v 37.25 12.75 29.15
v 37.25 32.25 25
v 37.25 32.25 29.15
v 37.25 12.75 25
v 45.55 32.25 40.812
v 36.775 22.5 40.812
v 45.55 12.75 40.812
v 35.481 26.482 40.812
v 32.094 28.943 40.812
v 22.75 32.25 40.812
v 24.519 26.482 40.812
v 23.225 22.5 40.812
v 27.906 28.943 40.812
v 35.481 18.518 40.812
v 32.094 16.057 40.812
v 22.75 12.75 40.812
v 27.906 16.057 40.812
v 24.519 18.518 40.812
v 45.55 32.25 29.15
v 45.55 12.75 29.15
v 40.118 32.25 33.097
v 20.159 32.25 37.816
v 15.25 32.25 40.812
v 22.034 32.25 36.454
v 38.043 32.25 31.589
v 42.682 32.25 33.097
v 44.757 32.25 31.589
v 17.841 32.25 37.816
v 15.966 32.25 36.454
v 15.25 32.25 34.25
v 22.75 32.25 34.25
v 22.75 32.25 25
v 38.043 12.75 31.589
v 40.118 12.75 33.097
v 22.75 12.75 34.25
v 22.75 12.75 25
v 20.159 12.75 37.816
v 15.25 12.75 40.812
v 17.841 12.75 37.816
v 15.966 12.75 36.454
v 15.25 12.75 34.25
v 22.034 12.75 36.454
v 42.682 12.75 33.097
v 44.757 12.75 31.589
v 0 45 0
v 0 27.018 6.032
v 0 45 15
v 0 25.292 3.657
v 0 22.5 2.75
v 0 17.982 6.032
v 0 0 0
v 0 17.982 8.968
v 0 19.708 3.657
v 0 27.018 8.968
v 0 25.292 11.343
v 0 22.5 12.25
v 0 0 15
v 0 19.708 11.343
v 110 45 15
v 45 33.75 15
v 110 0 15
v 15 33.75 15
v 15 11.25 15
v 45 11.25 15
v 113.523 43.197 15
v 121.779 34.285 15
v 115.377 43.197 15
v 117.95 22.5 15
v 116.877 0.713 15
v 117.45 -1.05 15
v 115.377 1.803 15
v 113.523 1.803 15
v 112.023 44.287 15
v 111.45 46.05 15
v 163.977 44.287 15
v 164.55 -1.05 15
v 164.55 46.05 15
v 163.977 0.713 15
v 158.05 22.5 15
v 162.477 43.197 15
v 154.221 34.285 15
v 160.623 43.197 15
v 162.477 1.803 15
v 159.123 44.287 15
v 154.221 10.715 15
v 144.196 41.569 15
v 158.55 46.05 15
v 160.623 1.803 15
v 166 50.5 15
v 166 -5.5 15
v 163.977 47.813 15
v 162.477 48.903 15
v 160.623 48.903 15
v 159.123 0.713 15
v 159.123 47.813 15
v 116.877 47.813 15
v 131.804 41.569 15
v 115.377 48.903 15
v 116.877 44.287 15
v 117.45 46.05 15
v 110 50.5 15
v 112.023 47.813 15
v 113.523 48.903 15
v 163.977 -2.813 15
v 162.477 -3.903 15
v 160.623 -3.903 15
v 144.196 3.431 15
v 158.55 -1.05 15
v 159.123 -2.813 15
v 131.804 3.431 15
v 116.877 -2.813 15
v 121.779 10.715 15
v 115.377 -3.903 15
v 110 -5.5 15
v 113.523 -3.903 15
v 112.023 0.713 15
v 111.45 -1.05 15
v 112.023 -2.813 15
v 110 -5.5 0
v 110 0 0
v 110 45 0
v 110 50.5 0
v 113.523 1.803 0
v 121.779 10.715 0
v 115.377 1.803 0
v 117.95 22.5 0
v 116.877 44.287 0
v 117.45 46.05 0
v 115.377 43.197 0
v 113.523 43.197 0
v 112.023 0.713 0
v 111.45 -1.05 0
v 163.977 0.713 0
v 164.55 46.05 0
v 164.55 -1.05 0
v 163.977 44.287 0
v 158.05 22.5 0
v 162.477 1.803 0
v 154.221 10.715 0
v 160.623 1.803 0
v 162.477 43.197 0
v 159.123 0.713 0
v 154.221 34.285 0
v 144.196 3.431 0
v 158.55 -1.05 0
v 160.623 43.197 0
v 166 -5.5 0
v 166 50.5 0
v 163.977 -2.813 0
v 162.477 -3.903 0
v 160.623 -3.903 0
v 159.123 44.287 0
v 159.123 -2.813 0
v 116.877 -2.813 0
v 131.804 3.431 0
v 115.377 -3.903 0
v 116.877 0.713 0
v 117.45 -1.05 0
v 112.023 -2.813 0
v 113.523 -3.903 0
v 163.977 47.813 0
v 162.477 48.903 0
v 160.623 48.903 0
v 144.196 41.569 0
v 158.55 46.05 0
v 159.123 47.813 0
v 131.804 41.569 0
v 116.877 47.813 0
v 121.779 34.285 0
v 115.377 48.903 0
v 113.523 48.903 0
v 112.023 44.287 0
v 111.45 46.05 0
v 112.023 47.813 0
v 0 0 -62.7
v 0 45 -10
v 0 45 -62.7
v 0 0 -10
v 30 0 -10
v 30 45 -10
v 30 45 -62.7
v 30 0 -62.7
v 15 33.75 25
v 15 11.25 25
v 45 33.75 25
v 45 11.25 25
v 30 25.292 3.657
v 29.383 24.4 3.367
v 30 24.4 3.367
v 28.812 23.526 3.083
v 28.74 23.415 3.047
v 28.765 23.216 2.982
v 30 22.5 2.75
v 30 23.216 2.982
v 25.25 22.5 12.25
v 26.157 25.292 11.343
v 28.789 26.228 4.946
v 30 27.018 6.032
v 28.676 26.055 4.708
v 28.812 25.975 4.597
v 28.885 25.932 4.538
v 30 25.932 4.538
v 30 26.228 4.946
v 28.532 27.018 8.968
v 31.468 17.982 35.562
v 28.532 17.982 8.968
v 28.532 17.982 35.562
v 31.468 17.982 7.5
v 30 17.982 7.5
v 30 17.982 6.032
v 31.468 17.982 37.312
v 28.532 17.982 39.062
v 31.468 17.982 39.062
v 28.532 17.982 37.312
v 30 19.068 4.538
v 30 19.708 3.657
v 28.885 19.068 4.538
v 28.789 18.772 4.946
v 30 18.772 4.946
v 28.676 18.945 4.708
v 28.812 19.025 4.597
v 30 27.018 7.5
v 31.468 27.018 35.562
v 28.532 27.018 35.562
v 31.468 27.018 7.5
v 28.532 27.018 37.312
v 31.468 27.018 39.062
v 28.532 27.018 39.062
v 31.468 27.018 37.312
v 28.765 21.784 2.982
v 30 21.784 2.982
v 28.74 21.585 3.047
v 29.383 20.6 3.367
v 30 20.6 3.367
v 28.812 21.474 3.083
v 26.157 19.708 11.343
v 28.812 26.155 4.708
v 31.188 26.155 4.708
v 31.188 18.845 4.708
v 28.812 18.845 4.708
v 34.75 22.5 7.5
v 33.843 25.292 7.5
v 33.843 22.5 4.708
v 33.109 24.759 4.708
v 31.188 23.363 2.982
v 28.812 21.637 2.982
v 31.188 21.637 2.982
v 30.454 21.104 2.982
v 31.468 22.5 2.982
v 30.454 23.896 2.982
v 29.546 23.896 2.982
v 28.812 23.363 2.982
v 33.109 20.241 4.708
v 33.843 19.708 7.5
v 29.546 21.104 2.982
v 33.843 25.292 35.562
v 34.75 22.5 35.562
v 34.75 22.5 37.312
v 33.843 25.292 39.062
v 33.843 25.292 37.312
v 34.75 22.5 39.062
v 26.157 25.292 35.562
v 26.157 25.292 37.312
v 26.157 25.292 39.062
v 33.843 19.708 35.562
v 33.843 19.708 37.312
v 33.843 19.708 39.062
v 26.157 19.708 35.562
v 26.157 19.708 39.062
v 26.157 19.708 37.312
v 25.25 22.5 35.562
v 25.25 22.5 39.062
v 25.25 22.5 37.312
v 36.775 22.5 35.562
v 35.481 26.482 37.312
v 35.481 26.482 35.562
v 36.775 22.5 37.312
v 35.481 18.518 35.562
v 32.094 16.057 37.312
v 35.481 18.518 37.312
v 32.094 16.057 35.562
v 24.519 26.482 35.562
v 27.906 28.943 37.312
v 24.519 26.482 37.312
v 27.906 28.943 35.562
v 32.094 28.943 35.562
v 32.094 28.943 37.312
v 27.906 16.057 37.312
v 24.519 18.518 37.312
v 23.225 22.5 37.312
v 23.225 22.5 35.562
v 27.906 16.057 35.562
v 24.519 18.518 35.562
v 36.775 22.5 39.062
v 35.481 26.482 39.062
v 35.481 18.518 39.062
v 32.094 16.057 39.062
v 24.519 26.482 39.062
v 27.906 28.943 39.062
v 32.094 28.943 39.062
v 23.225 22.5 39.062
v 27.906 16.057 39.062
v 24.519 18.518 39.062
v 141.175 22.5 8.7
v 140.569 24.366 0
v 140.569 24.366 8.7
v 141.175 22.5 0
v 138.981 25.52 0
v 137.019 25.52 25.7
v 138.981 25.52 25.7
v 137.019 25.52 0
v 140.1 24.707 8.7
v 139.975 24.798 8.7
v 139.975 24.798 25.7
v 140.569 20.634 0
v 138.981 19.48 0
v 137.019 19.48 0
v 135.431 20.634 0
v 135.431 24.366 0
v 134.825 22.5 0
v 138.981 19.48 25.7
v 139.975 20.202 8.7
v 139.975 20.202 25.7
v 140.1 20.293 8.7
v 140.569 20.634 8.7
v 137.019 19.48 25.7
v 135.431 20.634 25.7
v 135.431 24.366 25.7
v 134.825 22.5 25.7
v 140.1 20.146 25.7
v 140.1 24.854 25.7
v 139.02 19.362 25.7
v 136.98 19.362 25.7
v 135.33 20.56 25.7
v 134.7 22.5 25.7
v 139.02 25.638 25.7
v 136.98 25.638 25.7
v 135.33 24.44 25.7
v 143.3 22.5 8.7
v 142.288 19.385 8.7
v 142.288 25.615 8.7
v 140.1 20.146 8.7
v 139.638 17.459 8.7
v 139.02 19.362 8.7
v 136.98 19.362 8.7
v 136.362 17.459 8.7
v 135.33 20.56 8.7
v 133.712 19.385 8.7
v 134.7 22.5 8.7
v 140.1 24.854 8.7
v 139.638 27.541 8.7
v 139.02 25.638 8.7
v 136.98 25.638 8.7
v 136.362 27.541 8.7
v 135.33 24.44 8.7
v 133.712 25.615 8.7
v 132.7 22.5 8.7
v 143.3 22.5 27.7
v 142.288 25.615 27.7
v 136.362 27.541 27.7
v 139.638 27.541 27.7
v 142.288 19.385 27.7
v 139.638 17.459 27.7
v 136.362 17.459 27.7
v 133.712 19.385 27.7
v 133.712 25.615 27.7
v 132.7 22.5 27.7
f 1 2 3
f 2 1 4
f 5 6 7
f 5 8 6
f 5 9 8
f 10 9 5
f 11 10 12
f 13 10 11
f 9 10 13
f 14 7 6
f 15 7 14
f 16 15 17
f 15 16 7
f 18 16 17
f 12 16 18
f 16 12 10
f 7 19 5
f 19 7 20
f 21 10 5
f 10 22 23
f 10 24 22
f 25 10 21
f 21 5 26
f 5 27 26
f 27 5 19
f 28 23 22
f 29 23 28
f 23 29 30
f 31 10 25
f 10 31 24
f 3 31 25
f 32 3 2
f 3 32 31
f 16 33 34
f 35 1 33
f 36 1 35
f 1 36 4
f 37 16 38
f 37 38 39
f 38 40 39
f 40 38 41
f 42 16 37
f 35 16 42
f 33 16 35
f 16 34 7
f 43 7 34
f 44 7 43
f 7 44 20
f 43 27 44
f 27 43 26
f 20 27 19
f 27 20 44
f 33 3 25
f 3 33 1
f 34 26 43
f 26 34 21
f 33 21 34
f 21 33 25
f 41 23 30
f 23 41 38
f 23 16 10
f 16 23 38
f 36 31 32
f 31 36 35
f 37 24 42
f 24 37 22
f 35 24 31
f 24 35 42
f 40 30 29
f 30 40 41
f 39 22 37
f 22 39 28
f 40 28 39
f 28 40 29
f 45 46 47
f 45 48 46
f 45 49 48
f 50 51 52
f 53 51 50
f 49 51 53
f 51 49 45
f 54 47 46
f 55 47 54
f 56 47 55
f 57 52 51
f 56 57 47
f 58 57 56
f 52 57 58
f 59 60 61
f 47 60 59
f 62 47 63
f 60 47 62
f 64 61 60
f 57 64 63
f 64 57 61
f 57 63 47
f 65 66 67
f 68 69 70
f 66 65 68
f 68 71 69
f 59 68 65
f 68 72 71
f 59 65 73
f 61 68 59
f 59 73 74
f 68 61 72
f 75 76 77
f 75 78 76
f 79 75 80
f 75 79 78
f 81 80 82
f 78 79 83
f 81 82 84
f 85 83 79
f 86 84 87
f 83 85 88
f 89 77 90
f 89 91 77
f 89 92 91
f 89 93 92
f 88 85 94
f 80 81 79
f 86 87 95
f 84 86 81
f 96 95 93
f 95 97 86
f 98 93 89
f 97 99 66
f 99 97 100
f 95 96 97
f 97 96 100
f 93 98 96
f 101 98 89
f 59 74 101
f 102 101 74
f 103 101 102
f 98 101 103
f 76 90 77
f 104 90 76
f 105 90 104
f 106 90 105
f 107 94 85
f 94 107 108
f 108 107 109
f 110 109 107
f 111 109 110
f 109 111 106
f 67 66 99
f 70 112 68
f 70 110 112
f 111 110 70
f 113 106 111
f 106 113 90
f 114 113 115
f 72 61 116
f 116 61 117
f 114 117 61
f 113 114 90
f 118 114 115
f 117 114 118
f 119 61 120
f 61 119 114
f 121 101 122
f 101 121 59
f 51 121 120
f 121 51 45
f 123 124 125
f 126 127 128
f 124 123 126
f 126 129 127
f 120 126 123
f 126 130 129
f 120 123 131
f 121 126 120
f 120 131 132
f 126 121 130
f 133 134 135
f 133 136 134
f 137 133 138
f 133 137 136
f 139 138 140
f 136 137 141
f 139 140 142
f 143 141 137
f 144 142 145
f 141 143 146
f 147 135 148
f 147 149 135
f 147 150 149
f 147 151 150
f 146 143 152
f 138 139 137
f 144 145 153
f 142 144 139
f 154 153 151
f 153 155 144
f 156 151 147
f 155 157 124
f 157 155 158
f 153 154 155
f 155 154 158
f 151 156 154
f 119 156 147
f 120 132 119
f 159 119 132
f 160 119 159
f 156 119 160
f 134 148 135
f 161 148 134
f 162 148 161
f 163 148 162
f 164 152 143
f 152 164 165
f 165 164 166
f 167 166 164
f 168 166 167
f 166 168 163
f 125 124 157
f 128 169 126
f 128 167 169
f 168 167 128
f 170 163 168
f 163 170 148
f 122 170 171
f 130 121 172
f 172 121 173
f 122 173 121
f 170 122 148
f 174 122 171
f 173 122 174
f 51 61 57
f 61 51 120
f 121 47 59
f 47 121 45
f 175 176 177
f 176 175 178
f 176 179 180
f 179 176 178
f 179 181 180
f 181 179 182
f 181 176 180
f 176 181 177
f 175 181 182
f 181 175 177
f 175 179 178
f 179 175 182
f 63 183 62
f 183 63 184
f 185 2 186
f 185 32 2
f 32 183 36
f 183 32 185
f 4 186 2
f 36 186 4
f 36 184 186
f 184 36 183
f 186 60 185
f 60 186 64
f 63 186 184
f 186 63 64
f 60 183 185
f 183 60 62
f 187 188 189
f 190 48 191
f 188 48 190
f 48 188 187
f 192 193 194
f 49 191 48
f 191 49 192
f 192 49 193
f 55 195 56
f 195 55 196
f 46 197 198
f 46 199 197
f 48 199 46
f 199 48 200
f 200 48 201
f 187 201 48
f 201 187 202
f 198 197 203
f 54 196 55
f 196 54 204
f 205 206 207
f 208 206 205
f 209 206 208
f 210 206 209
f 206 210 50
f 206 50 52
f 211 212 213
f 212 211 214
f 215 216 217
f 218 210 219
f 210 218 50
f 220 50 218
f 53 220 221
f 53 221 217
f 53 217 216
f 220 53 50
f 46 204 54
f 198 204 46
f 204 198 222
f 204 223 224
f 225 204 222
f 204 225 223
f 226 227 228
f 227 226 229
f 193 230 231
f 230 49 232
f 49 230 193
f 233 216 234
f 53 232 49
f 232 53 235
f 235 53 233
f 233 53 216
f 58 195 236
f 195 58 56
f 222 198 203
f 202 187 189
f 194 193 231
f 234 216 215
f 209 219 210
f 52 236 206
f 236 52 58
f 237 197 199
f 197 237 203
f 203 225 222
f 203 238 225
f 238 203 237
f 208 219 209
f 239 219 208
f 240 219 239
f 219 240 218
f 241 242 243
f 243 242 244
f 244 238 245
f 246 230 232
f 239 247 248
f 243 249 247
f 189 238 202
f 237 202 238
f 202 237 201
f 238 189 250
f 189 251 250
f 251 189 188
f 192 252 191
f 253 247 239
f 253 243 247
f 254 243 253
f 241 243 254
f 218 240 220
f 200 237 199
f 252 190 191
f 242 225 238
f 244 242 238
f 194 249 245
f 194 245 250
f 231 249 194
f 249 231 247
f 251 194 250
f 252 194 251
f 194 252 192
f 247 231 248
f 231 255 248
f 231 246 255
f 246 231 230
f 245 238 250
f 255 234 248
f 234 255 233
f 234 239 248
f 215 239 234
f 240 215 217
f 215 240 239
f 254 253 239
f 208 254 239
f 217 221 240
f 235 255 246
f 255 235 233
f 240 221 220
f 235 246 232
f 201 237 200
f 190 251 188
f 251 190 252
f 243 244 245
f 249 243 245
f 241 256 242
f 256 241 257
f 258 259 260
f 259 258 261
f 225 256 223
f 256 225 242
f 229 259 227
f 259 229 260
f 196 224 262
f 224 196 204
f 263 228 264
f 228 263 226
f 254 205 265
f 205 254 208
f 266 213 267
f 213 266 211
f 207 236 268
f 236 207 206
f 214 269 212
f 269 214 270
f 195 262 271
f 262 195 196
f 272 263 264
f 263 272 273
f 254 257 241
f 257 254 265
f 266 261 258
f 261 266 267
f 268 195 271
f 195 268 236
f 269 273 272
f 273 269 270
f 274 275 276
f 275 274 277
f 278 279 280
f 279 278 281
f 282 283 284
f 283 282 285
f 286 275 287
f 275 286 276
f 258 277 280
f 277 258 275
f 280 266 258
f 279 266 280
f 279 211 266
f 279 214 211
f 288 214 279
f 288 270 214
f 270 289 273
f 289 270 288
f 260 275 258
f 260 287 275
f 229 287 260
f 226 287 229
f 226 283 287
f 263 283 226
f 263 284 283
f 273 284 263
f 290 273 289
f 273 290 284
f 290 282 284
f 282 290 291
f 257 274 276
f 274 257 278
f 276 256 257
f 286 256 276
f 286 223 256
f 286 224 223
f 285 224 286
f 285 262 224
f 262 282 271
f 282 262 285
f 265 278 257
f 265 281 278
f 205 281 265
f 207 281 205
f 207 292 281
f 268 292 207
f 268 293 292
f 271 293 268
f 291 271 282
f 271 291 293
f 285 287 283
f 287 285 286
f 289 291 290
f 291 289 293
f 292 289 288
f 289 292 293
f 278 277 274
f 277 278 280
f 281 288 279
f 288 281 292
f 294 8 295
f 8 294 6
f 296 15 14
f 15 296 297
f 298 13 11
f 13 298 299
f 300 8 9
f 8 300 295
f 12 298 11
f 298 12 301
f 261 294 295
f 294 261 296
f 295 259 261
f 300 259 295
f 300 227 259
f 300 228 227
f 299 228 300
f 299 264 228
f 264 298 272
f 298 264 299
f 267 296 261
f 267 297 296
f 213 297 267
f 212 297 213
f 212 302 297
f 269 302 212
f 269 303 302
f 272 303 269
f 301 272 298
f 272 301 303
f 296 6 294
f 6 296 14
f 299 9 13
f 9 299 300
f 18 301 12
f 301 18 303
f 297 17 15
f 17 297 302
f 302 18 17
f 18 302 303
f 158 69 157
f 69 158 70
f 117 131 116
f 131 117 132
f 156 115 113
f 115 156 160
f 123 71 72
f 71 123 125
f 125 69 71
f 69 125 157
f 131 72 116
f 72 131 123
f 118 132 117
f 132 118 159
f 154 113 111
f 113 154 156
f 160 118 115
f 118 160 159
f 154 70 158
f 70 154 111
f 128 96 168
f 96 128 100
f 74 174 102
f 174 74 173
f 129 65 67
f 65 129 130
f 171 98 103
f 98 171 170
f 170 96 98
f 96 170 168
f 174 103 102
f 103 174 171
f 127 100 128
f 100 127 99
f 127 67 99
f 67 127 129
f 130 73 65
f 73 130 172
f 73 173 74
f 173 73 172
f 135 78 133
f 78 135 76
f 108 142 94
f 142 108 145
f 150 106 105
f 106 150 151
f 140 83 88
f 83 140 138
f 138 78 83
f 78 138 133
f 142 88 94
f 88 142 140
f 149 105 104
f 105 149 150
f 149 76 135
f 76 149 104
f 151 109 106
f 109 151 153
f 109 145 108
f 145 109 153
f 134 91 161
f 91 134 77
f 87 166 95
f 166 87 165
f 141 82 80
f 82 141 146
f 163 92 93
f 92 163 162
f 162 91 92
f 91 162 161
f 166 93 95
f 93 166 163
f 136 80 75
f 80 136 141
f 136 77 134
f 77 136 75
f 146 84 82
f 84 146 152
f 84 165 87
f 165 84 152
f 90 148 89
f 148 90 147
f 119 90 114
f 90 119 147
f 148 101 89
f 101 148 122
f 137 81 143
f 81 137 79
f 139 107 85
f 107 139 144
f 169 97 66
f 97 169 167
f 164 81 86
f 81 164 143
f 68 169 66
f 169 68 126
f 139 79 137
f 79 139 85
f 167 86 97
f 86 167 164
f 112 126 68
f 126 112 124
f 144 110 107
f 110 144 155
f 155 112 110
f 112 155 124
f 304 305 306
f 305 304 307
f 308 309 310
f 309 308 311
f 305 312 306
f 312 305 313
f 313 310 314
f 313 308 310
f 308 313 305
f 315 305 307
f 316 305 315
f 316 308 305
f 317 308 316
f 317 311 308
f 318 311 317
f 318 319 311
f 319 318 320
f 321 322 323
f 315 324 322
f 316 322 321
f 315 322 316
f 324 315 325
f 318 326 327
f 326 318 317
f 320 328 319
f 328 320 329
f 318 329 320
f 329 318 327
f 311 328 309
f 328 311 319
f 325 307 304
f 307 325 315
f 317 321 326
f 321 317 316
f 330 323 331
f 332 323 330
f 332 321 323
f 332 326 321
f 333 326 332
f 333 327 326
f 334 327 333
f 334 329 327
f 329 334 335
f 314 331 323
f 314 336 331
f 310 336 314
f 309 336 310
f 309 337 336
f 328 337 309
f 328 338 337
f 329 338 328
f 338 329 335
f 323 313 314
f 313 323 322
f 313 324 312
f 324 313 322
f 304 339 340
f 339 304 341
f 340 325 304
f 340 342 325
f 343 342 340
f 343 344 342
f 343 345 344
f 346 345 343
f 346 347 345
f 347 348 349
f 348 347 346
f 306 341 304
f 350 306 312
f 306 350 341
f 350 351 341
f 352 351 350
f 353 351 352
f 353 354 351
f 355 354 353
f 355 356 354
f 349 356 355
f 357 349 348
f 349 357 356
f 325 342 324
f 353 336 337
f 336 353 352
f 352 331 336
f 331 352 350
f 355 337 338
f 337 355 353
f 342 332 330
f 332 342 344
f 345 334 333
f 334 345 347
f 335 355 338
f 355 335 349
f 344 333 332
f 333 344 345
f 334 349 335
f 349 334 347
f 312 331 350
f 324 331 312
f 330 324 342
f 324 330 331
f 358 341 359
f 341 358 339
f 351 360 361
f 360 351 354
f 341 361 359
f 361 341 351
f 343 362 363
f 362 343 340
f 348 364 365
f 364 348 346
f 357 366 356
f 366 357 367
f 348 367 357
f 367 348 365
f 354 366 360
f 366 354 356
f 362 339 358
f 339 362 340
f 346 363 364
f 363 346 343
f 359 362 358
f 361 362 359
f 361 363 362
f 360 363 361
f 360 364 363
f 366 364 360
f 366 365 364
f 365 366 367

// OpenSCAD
// ----- Declaração de Variáveis ----- //
res=10;
folga1=0.125;

basex=110;
menosAux=80;
base2x=110-menosAux;
basey=2*22.5;
basez=15;

hastex=30;
hastey=22.5;
hastez=10;

rfurao=8.3/2;
rfurim=7.5/2;
sobefurim=13-rfurim-rfurao;

entreFuros=13;

hastefuraox=2*rfurao;
hastefuraoy=19.5;
hastefuraoz=1.25*rfurao;

hastefurimx=2*rfurim;
hastefurimy=19.5;
hastefurimz=1.75*rfurim;

haste2x=14.5;
haste2y=19.5;
haste2z=rfurao+sobefurim+hastefurimz;

rFuro=9.5/2;
alt1=basex-menosAux;
alt2=haste2z+basez+hastez-basez/2;

rfuroElast=13.55/2;
altElast=1.75;

motorx=56;
motory=56;
motorz=52.7;
rmotor=38.1/2+1;
rMenorMotor=6/2;
eCil=(52.1+42.1)/2;
eCilMotorxy=(56-52.1)/2;
rMenorMotorReal=5/2;

rPino=6.35/2;
altPino=24+54.4-52.7;
menosRpino=6.35-5.15;
altRpino=17;
morePino=2;
maisAltPino=2;

// ----- Main ----- //

difference(){
    translate([0,0,0]){
        // Base
        cube([basex,basey,basez]);
        
        translate([0,0,-10-motorz])cube([base2x,basey,motorz]);

        // Hastes
        translate([basex-menosAux-hastex/2,basey/2-hastey/2,basez])
        cube([hastex,hastey,hastez]);

        translate([basex-menosAux-haste2x/2,basey/2-haste2y/2,basez+hastez])
        cube([haste2x,haste2y,haste2z]);

        difference(){
            translate([basex-menosAux+haste2x/2,basey/2-haste2y/2,basez+hastez+rfurao])
            cube([hastefuraox,hastefuraoy,haste2z-rfurao]);
            #translate([rfurao+basex-menosAux+haste2x/2,basey/2-haste2y/2,basez+hastez+rfurao])
            #rotate([-90,0,0]) #cylinder(hastefuraoy,rfurao,rfurao,$fn=res);
        }
        translate([0,0,sobefurim]){
            difference(){
                translate([basex-menosAux-haste2x/2-hastefurimx,basey/2-haste2y/2,basez+hastez+rfurao])
                cube([hastefurimx,hastefurimy,hastefurimz]);
                #translate([-rfurim+basex-menosAux-haste2x/2,basey/2-haste2y/2,basez+hastez+rfurao])
                #rotate([-90,0,0]) #cylinder(hastefurimy,rfurim,rfurim,$fn=res);
            }
        }
    }
    #translate([0,basey/2,basez/2]){
        // Furo Encaminha Fio
        #rotate([0,90,0])
        #cylinder(alt1,rFuro,rFuro,$fn=res);
        #translate([alt1,0,0])
        #sphere(rFuro,$fn=res);
        #translate([alt1,0,0])
        #cylinder(alt2,rFuro,rFuro,$fn=res);
        #translate([alt1,0,0])
        #cylinder(alt2,rFuro,rFuro,$fn=res);
    }
    #translate([0,basey/2,basez/2]){
        // Furo Encaminha Fio
        #rotate([0,90,0])
        #cylinder(alt1,rFuro,rFuro,$fn=res);
        #translate([alt1,0,0])
        #sphere(rFuro,$fn=res);
        #translate([alt1,0,0])
        #cylinder(alt2,rFuro,rFuro,$fn=res);
        #translate([alt1,0,0])
        #cylinder(alt2,rFuro,rFuro,$fn=res);
    }
    translate([0,0,-3*altElast]){
        #translate([alt1,0,alt2])
        #translate([0,basey/2,basez/2])
        #cylinder(altElast,rfuroElast,rfuroElast,$fn=res);
        #translate([alt1,0,alt2+2*altElast])
        #translate([0,basey/2,basez/2])
        #cylinder(altElast,rfuroElast,rfuroElast,$fn=res);
    }
}

// Suporte ao Motor de Passo
difference(){
    translate([basex,-(motory-basey)/2,0])cube([motorx,motory,basez]);
    #translate([basex+eCilMotorxy+rMenorMotorReal,-(motory-basey)/2+eCilMotorxy+rMenorMotorReal,0]){
        #translate([0,0,0])cylinder(basez,rMenorMotor,rMenorMotor,$fn=res);
        #translate([0,eCil,0])cylinder(basez,rMenorMotor,rMenorMotor,$fn=res);
        #translate([eCil,0,0])cylinder(basez,rMenorMotor,rMenorMotor,$fn=res);
        #translate([eCil,eCil,0])cylinder(basez,rMenorMotor,rMenorMotor,$fn=res);
    }
    #translate([basex,-(motory-basey)/2,0])translate([motorx/2,motory/2,0])cylinder(basez,rmotor,rmotor,$fn=res);
}

// Pino do Motor de Passo (Apague quando for imprimir)
difference(){
    translate([basex,-(motory-basey)/2,0])
    translate([motorx/2,motory/2,0])
    cylinder(altPino,rPino,rPino,$fn=res);

    #translate([basex-menosRpino,-(motory-basey)/2,0])
    #translate([motorx/2+rPino,motory/2-rPino,altPino-altRpino])
    #cube([2*rPino,2*rPino,altRpino]);
}

// Encaixe Pino do Motor de Passo
difference(){
    translate([basex,-(motory-basey)/2,altPino-altRpino])
    translate([motorx/2,motory/2,0])
    cylinder(altRpino+maisAltPino,rPino+folga1+morePino,rPino+folga1+morePino,$fn=res);
    difference(){
        translate([basex,-(motory-basey)/2,0])
        translate([motorx/2,motory/2,0])
        cylinder(altPino,rPino+folga1,rPino+folga1,$fn=res);

        #translate([basex-menosRpino+folga1,-(motory-basey)/2,0])
        #translate([motorx/2+rPino,motory/2-rPino,altPino-altRpino])
        #cube([2*rPino,2*rPino,altRpino]);
    }
}
